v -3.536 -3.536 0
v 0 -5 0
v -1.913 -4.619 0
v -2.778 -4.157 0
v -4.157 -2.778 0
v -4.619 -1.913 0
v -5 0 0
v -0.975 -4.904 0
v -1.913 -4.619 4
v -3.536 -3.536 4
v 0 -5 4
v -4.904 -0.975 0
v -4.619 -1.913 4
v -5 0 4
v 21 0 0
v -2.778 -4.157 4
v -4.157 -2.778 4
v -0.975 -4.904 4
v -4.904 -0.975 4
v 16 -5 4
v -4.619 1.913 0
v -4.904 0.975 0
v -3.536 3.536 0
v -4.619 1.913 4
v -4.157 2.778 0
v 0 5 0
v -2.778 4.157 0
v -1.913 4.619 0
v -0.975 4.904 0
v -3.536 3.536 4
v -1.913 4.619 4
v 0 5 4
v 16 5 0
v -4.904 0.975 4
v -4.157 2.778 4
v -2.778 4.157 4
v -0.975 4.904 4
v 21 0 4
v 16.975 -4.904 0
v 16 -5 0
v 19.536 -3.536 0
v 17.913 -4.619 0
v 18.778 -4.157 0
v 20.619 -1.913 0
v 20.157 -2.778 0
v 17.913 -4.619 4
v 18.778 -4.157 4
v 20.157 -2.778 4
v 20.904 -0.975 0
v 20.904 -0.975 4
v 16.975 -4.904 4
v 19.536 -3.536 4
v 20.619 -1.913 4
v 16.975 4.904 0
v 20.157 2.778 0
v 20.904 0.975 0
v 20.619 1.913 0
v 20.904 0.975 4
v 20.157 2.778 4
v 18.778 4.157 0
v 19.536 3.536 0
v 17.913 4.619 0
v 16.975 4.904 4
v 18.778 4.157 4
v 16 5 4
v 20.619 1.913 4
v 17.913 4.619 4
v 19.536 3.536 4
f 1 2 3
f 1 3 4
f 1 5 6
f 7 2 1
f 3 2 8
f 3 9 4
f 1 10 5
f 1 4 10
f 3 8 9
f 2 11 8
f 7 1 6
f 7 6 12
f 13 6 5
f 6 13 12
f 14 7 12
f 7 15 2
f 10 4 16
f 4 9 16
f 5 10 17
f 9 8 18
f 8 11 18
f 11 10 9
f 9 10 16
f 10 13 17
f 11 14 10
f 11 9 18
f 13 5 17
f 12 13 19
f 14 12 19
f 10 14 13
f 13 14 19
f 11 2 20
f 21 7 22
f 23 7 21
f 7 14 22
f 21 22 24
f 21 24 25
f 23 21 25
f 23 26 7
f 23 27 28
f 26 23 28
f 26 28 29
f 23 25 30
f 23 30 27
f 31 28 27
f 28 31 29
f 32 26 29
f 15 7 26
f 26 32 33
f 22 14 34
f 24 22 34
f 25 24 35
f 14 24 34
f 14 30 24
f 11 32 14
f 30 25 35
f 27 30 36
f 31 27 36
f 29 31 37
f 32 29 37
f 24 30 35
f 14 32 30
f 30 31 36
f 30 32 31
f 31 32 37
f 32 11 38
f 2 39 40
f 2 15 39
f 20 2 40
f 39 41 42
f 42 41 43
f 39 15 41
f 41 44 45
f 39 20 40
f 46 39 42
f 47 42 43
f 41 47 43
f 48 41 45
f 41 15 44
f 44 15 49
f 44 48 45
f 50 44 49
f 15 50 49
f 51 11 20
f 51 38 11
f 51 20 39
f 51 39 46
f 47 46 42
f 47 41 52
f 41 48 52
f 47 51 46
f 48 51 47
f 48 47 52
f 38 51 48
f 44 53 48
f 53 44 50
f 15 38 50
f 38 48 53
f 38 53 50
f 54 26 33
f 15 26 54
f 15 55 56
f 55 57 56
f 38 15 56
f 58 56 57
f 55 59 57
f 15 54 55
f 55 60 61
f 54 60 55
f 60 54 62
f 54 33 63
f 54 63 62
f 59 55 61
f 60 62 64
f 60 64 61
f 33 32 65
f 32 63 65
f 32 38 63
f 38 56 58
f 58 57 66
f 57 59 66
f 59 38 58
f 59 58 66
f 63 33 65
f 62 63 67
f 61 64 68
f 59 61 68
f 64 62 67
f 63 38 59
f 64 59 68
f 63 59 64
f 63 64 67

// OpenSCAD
// The slot idiom: two cylinders hulled into a rounded rectangle.
$fn = 32;
hull() { cylinder(h = 4, r = 5); translate([16, 0, 0]) cylinder(h = 4, r = 5); }
